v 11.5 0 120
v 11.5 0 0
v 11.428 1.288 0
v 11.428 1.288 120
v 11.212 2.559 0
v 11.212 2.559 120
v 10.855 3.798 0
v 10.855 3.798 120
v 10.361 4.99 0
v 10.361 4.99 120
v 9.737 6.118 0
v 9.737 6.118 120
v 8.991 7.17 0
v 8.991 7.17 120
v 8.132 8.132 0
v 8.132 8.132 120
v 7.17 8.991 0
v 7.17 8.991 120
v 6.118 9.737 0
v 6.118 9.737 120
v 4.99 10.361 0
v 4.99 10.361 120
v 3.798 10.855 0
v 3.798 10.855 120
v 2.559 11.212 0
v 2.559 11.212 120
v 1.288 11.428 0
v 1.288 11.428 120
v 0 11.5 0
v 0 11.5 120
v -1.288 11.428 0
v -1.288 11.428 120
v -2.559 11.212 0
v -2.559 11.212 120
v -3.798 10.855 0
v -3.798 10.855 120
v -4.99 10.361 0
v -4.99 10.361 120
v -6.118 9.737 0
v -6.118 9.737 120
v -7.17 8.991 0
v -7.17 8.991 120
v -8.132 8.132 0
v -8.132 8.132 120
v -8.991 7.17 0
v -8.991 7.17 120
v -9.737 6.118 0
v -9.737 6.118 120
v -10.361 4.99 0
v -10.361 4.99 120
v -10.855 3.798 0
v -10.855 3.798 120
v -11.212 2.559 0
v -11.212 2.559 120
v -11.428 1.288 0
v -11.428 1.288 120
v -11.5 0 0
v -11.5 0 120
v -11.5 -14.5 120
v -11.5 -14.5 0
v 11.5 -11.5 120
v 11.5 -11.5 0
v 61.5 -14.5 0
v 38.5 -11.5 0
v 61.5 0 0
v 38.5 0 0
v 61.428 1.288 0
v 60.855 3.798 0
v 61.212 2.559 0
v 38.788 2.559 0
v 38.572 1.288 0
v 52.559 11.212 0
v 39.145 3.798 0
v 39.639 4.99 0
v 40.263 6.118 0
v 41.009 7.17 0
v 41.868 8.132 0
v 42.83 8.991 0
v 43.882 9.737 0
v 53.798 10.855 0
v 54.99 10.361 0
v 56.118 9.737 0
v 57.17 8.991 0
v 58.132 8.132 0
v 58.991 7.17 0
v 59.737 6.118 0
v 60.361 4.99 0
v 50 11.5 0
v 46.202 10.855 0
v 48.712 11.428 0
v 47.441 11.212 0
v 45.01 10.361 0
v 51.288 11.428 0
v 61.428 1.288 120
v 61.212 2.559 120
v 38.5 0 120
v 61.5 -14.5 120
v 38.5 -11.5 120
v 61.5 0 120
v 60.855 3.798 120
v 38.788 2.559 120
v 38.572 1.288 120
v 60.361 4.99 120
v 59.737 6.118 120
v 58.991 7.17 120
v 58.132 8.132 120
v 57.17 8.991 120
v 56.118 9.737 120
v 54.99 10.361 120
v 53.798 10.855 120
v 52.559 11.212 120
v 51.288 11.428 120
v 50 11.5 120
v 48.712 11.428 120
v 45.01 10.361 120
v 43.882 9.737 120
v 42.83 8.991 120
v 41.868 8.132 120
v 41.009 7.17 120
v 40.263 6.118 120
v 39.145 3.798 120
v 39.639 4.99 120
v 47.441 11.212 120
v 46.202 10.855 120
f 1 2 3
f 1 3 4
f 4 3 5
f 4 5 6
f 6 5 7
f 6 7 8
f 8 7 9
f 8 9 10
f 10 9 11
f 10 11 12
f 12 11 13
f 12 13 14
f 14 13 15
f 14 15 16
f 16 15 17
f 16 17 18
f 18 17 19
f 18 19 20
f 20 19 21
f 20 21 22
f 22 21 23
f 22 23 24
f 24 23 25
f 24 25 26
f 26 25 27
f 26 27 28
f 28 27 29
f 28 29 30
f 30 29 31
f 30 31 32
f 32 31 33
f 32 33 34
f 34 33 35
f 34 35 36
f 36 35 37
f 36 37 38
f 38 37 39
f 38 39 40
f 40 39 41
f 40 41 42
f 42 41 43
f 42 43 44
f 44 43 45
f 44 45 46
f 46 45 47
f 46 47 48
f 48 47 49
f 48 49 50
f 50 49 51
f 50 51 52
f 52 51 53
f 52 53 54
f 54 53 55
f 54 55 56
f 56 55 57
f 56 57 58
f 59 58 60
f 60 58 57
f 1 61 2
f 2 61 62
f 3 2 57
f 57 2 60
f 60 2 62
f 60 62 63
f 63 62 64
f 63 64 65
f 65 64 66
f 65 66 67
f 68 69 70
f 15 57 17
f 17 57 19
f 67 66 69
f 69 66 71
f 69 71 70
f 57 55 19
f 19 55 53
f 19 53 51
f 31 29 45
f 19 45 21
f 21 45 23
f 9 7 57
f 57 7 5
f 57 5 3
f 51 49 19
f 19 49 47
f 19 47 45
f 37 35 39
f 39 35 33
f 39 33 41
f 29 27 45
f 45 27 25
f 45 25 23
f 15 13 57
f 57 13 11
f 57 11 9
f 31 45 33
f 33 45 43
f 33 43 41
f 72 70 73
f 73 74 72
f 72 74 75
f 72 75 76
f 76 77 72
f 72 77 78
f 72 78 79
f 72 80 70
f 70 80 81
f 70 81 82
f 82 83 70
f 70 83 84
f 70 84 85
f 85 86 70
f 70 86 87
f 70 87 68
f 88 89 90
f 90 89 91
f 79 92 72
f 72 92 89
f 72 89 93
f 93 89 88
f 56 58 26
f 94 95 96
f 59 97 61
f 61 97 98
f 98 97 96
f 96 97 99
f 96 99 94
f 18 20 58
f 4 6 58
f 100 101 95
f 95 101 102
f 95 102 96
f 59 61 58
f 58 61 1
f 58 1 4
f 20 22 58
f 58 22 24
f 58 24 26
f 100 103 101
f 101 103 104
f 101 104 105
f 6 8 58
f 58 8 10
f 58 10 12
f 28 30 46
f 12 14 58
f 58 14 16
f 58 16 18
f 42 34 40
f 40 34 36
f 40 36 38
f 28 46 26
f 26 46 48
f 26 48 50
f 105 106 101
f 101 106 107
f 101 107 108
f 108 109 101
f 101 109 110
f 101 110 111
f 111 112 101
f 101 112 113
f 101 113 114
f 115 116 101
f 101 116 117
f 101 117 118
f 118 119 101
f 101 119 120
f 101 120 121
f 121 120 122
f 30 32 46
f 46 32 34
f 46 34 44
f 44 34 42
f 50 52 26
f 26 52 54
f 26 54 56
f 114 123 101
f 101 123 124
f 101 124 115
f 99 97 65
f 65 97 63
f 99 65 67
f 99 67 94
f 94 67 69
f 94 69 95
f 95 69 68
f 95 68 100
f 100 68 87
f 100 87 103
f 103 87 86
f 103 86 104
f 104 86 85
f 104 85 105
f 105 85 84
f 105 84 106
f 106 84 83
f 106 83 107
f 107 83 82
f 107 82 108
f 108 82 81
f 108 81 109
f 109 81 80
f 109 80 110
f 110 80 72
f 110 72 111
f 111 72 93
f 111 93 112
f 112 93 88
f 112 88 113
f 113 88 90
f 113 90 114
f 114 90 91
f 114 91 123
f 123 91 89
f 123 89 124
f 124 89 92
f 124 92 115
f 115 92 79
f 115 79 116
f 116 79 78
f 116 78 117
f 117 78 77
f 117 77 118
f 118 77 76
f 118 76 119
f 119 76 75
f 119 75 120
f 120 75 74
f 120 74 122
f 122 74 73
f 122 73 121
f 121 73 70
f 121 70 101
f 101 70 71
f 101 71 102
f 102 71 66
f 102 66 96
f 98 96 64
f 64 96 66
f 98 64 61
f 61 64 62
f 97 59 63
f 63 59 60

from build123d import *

# Parameters (mm, degrees)
SKETCH1_W           = 73
SKETCH1_H           = 3
BOSS_EXTRUDE1_DEPTH = 120


with BuildPart() as part:
    # Sketch1 → Boss-Extrude1 (new body)
    with BuildSketch(Plane.XY):
        with BuildLine():
            ThreePointArc((11.5, 0), (0, 11.5), (-11.5, 0))
            Line((-11.5, 0), (11.5, 0))
        make_face()
        with BuildLine():
            Line((11.5, 0), (-11.5, 0))
            ThreePointArc((-11.5, 0), (-8.131727984, -8.131727984), (0, -11.5))
            ThreePointArc((0, -11.5), (8.131727984, -8.131727984), (11.5, 0))
        make_face()
        with BuildLine():
            ThreePointArc((11.5, 0), (0, 11.5), (-11.5, 0))
            Line((-11.5, 0), (11.5, 0))
        make_face()
        with BuildLine():
            Line((11.5, 0), (-11.5, 0))
            ThreePointArc((-11.5, 0), (-8.131727984, -8.131727984), (0, -11.5))
            ThreePointArc((0, -11.5), (8.131727984, -8.131727984), (11.5, 0))
        make_face()
        with BuildLine():
            Line((11.5, -11.5), (11.5, 0))
            ThreePointArc((11.5, 0), (8.131727984, -8.131727984), (0, -11.5))
            Line((0, -11.5), (11.5, -11.5))
        make_face()
        with BuildLine():
            ThreePointArc((0, -11.5), (-8.131727984, -8.131727984), (-11.5, 0))
            Line((-11.5, 0), (-11.5, -11.5))
            Line((-11.5, -11.5), (0, -11.5))
        make_face()
        with BuildLine():
            ThreePointArc((50, -11.5), (41.868272016, -8.131727984), (38.5, 0))
            Line((38.5, 0), (38.5, -11.5))
            Line((38.5, -11.5), (50, -11.5))
        make_face()
        with BuildLine():
            ThreePointArc((61.5, 0), (50, 11.5), (38.5, 0))
            Line((38.5, 0), (61.5, 0))
        make_face()
        with BuildLine():
            Line((61.5, 0), (38.5, 0))
            ThreePointArc((38.5, 0), (41.868272016, -8.131727984), (50, -11.5))
            ThreePointArc((50, -11.5), (58.131727984, -8.131727984), (61.5, 0))
        make_face()
        with BuildLine():
            ThreePointArc((61.5, 0), (50, 11.5), (38.5, 0))
            Line((38.5, 0), (61.5, 0))
        make_face()
        with BuildLine():
            Line((61.5, 0), (38.5, 0))
            ThreePointArc((38.5, 0), (41.868272016, -8.131727984), (50, -11.5))
            ThreePointArc((50, -11.5), (58.131727984, -8.131727984), (61.5, 0))
        make_face()
        with BuildLine():
            Line((61.5, -11.5), (61.5, 0))
            ThreePointArc((61.5, 0), (58.131727984, -8.131727984), (50, -11.5))
            Line((50, -11.5), (61.5, -11.5))
        make_face()
        with Locations((25, -13)):
            Rectangle(SKETCH1_W, SKETCH1_H)
    extrude(amount=BOSS_EXTRUDE1_DEPTH)


solid = part.part
